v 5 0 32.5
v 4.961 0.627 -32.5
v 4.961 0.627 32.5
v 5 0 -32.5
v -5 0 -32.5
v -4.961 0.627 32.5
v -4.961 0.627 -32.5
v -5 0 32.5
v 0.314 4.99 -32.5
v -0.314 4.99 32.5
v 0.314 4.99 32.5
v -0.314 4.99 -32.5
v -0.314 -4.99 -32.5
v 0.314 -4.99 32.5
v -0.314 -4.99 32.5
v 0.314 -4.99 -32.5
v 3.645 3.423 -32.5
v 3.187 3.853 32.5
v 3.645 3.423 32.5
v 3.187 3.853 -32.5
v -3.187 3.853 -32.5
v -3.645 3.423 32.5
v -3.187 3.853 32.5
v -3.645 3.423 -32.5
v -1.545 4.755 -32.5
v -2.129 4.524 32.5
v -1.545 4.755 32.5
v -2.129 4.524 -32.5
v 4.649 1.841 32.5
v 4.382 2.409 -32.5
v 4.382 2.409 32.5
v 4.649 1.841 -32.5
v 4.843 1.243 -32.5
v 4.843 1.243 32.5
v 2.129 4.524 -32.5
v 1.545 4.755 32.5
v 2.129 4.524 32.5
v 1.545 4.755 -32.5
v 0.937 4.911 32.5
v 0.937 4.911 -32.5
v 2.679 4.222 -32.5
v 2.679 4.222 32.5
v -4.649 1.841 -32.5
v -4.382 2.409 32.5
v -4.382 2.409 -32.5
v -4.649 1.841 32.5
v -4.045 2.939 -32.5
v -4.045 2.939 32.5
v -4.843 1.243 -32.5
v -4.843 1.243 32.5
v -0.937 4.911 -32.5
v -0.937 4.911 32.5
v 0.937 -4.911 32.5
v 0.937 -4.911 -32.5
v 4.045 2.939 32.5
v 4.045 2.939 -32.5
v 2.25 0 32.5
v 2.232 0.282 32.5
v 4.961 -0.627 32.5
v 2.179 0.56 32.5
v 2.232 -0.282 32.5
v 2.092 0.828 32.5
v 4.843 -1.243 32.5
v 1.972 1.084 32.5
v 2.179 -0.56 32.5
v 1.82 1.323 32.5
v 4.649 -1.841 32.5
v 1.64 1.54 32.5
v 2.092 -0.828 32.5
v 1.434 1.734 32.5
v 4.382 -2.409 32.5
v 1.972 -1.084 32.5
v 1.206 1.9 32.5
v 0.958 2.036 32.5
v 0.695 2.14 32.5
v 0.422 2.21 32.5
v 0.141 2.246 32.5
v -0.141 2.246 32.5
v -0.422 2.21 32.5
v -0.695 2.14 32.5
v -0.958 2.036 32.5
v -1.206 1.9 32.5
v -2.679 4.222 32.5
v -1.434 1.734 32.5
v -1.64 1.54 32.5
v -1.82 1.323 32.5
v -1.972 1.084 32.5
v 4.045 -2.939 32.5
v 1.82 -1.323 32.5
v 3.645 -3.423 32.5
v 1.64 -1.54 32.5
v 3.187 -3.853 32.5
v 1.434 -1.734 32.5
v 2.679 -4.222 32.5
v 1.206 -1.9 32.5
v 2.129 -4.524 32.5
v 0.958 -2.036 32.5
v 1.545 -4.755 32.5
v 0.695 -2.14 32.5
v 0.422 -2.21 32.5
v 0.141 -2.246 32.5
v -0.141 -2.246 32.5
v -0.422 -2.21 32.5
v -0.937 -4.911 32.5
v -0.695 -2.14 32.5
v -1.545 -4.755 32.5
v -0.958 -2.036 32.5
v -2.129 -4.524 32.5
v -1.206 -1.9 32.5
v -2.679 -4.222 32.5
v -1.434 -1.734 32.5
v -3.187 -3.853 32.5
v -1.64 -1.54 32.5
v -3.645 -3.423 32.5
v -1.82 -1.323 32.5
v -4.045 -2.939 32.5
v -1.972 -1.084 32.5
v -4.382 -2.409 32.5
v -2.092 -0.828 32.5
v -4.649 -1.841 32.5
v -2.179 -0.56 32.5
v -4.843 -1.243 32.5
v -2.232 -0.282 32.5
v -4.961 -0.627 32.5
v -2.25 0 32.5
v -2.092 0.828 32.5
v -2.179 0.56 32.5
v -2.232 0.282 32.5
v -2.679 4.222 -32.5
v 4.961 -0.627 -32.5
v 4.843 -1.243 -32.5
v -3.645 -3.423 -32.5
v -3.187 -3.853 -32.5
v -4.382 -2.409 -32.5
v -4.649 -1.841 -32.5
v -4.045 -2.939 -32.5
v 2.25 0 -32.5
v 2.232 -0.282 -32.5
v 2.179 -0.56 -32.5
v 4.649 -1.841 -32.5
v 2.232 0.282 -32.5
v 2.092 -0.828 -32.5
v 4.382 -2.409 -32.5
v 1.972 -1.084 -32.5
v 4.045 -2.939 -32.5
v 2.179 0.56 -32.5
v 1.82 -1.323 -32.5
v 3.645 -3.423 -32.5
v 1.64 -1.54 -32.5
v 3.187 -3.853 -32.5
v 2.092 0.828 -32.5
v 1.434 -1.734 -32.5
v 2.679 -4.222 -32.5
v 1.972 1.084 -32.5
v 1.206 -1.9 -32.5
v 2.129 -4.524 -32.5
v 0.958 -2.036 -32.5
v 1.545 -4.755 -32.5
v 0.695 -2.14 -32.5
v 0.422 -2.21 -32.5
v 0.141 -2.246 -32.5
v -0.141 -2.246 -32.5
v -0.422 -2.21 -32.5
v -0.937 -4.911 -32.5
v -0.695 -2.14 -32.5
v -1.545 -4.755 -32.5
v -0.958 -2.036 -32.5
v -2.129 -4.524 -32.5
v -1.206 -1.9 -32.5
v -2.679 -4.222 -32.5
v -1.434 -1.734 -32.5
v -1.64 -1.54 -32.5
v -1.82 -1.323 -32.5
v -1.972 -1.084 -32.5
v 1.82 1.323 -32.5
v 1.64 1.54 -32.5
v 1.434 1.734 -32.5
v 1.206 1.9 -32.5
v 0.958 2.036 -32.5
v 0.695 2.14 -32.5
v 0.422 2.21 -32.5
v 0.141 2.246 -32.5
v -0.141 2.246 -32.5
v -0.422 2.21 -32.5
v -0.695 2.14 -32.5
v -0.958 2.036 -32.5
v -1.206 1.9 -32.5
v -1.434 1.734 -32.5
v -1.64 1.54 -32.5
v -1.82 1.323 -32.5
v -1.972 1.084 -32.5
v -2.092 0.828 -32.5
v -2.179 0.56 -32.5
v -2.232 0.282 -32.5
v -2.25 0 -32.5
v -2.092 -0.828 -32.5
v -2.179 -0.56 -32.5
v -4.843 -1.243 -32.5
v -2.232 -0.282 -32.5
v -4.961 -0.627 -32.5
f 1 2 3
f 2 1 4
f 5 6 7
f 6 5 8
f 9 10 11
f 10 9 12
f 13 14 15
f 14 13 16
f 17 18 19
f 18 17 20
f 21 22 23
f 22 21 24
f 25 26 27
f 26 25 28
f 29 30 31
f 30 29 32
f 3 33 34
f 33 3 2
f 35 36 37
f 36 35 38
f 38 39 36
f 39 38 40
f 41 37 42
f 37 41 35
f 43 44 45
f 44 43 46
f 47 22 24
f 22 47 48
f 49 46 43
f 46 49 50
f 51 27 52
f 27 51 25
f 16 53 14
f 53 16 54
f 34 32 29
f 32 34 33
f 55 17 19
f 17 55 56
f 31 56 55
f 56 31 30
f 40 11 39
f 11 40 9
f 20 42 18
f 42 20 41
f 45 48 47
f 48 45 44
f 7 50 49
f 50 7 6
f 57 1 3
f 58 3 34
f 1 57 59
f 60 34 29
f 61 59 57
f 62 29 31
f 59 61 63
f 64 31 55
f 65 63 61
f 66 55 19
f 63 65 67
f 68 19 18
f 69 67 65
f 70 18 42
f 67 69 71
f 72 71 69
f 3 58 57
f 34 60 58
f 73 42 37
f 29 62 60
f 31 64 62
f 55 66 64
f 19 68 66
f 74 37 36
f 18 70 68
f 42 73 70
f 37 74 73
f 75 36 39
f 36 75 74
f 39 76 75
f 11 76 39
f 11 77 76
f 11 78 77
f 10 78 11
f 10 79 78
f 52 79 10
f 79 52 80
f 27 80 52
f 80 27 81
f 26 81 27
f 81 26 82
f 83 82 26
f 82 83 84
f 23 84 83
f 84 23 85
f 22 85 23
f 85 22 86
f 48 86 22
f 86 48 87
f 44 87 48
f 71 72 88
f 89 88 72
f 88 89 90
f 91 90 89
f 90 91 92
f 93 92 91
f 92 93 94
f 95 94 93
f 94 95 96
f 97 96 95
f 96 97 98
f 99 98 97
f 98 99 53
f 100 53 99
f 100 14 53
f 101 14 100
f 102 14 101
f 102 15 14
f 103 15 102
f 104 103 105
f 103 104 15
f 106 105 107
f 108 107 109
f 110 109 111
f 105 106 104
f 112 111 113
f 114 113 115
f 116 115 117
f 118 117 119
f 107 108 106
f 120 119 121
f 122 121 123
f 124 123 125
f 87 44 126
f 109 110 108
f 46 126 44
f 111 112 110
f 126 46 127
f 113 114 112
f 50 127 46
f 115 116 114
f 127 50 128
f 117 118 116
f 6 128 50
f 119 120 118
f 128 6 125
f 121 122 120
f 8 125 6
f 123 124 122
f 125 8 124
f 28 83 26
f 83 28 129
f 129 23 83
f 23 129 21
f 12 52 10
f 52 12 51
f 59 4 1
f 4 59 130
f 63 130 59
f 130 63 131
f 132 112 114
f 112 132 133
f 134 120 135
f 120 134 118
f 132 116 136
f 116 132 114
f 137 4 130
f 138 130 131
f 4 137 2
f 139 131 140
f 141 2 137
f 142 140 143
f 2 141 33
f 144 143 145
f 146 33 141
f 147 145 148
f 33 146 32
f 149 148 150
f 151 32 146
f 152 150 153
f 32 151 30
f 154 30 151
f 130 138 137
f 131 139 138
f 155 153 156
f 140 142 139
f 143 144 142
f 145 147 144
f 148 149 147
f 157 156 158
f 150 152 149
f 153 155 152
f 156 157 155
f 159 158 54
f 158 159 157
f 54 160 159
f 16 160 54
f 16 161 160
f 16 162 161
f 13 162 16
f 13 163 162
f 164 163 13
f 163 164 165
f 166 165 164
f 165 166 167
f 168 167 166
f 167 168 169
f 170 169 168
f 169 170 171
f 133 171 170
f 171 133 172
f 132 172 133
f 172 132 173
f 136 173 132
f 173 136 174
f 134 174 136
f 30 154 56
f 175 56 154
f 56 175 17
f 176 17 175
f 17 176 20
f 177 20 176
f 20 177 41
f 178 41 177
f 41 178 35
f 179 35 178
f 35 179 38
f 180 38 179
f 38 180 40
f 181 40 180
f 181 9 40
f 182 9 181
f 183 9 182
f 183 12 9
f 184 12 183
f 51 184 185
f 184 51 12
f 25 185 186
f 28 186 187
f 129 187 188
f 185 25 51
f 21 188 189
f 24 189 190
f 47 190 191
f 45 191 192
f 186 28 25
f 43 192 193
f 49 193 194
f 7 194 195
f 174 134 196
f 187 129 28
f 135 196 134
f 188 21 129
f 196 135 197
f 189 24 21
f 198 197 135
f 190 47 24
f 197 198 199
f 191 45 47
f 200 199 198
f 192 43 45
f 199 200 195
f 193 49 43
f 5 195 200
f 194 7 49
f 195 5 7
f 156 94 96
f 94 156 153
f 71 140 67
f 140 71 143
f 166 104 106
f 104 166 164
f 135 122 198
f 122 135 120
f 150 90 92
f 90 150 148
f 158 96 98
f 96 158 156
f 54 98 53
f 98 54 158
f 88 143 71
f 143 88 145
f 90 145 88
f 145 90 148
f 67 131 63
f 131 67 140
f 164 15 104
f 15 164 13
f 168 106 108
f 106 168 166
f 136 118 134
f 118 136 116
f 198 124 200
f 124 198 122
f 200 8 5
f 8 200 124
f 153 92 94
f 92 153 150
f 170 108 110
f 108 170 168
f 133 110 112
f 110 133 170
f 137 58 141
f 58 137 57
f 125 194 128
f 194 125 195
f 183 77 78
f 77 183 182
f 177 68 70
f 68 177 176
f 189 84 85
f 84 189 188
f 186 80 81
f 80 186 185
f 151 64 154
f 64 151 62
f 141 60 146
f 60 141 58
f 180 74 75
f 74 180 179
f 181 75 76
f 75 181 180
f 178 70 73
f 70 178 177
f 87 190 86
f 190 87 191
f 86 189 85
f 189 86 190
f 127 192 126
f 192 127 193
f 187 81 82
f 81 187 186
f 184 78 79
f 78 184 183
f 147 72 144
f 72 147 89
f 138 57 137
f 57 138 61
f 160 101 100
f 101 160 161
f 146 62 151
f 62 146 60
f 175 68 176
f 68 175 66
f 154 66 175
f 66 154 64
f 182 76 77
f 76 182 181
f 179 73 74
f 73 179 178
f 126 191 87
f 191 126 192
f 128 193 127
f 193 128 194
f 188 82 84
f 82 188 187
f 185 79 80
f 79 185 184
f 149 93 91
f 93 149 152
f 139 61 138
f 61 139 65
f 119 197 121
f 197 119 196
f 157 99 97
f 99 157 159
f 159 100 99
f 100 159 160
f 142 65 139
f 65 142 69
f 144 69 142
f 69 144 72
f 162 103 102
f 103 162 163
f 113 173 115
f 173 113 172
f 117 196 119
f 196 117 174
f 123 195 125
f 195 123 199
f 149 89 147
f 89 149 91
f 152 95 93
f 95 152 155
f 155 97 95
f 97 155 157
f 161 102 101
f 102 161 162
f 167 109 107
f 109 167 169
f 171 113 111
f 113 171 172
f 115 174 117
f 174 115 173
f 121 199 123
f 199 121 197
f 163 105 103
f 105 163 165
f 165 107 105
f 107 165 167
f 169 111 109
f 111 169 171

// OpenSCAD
$fn = 50;


difference() {
	union() {
		translate(v = [0, 0, -32.5000000000]) {
			cylinder(h = 65, r = 5.0000000000);
		}
	}
	union() {
		translate(v = [0, 0, -100.0000000000]) {
			cylinder(h = 200, r = 2.2500000000);
		}
	}
}
